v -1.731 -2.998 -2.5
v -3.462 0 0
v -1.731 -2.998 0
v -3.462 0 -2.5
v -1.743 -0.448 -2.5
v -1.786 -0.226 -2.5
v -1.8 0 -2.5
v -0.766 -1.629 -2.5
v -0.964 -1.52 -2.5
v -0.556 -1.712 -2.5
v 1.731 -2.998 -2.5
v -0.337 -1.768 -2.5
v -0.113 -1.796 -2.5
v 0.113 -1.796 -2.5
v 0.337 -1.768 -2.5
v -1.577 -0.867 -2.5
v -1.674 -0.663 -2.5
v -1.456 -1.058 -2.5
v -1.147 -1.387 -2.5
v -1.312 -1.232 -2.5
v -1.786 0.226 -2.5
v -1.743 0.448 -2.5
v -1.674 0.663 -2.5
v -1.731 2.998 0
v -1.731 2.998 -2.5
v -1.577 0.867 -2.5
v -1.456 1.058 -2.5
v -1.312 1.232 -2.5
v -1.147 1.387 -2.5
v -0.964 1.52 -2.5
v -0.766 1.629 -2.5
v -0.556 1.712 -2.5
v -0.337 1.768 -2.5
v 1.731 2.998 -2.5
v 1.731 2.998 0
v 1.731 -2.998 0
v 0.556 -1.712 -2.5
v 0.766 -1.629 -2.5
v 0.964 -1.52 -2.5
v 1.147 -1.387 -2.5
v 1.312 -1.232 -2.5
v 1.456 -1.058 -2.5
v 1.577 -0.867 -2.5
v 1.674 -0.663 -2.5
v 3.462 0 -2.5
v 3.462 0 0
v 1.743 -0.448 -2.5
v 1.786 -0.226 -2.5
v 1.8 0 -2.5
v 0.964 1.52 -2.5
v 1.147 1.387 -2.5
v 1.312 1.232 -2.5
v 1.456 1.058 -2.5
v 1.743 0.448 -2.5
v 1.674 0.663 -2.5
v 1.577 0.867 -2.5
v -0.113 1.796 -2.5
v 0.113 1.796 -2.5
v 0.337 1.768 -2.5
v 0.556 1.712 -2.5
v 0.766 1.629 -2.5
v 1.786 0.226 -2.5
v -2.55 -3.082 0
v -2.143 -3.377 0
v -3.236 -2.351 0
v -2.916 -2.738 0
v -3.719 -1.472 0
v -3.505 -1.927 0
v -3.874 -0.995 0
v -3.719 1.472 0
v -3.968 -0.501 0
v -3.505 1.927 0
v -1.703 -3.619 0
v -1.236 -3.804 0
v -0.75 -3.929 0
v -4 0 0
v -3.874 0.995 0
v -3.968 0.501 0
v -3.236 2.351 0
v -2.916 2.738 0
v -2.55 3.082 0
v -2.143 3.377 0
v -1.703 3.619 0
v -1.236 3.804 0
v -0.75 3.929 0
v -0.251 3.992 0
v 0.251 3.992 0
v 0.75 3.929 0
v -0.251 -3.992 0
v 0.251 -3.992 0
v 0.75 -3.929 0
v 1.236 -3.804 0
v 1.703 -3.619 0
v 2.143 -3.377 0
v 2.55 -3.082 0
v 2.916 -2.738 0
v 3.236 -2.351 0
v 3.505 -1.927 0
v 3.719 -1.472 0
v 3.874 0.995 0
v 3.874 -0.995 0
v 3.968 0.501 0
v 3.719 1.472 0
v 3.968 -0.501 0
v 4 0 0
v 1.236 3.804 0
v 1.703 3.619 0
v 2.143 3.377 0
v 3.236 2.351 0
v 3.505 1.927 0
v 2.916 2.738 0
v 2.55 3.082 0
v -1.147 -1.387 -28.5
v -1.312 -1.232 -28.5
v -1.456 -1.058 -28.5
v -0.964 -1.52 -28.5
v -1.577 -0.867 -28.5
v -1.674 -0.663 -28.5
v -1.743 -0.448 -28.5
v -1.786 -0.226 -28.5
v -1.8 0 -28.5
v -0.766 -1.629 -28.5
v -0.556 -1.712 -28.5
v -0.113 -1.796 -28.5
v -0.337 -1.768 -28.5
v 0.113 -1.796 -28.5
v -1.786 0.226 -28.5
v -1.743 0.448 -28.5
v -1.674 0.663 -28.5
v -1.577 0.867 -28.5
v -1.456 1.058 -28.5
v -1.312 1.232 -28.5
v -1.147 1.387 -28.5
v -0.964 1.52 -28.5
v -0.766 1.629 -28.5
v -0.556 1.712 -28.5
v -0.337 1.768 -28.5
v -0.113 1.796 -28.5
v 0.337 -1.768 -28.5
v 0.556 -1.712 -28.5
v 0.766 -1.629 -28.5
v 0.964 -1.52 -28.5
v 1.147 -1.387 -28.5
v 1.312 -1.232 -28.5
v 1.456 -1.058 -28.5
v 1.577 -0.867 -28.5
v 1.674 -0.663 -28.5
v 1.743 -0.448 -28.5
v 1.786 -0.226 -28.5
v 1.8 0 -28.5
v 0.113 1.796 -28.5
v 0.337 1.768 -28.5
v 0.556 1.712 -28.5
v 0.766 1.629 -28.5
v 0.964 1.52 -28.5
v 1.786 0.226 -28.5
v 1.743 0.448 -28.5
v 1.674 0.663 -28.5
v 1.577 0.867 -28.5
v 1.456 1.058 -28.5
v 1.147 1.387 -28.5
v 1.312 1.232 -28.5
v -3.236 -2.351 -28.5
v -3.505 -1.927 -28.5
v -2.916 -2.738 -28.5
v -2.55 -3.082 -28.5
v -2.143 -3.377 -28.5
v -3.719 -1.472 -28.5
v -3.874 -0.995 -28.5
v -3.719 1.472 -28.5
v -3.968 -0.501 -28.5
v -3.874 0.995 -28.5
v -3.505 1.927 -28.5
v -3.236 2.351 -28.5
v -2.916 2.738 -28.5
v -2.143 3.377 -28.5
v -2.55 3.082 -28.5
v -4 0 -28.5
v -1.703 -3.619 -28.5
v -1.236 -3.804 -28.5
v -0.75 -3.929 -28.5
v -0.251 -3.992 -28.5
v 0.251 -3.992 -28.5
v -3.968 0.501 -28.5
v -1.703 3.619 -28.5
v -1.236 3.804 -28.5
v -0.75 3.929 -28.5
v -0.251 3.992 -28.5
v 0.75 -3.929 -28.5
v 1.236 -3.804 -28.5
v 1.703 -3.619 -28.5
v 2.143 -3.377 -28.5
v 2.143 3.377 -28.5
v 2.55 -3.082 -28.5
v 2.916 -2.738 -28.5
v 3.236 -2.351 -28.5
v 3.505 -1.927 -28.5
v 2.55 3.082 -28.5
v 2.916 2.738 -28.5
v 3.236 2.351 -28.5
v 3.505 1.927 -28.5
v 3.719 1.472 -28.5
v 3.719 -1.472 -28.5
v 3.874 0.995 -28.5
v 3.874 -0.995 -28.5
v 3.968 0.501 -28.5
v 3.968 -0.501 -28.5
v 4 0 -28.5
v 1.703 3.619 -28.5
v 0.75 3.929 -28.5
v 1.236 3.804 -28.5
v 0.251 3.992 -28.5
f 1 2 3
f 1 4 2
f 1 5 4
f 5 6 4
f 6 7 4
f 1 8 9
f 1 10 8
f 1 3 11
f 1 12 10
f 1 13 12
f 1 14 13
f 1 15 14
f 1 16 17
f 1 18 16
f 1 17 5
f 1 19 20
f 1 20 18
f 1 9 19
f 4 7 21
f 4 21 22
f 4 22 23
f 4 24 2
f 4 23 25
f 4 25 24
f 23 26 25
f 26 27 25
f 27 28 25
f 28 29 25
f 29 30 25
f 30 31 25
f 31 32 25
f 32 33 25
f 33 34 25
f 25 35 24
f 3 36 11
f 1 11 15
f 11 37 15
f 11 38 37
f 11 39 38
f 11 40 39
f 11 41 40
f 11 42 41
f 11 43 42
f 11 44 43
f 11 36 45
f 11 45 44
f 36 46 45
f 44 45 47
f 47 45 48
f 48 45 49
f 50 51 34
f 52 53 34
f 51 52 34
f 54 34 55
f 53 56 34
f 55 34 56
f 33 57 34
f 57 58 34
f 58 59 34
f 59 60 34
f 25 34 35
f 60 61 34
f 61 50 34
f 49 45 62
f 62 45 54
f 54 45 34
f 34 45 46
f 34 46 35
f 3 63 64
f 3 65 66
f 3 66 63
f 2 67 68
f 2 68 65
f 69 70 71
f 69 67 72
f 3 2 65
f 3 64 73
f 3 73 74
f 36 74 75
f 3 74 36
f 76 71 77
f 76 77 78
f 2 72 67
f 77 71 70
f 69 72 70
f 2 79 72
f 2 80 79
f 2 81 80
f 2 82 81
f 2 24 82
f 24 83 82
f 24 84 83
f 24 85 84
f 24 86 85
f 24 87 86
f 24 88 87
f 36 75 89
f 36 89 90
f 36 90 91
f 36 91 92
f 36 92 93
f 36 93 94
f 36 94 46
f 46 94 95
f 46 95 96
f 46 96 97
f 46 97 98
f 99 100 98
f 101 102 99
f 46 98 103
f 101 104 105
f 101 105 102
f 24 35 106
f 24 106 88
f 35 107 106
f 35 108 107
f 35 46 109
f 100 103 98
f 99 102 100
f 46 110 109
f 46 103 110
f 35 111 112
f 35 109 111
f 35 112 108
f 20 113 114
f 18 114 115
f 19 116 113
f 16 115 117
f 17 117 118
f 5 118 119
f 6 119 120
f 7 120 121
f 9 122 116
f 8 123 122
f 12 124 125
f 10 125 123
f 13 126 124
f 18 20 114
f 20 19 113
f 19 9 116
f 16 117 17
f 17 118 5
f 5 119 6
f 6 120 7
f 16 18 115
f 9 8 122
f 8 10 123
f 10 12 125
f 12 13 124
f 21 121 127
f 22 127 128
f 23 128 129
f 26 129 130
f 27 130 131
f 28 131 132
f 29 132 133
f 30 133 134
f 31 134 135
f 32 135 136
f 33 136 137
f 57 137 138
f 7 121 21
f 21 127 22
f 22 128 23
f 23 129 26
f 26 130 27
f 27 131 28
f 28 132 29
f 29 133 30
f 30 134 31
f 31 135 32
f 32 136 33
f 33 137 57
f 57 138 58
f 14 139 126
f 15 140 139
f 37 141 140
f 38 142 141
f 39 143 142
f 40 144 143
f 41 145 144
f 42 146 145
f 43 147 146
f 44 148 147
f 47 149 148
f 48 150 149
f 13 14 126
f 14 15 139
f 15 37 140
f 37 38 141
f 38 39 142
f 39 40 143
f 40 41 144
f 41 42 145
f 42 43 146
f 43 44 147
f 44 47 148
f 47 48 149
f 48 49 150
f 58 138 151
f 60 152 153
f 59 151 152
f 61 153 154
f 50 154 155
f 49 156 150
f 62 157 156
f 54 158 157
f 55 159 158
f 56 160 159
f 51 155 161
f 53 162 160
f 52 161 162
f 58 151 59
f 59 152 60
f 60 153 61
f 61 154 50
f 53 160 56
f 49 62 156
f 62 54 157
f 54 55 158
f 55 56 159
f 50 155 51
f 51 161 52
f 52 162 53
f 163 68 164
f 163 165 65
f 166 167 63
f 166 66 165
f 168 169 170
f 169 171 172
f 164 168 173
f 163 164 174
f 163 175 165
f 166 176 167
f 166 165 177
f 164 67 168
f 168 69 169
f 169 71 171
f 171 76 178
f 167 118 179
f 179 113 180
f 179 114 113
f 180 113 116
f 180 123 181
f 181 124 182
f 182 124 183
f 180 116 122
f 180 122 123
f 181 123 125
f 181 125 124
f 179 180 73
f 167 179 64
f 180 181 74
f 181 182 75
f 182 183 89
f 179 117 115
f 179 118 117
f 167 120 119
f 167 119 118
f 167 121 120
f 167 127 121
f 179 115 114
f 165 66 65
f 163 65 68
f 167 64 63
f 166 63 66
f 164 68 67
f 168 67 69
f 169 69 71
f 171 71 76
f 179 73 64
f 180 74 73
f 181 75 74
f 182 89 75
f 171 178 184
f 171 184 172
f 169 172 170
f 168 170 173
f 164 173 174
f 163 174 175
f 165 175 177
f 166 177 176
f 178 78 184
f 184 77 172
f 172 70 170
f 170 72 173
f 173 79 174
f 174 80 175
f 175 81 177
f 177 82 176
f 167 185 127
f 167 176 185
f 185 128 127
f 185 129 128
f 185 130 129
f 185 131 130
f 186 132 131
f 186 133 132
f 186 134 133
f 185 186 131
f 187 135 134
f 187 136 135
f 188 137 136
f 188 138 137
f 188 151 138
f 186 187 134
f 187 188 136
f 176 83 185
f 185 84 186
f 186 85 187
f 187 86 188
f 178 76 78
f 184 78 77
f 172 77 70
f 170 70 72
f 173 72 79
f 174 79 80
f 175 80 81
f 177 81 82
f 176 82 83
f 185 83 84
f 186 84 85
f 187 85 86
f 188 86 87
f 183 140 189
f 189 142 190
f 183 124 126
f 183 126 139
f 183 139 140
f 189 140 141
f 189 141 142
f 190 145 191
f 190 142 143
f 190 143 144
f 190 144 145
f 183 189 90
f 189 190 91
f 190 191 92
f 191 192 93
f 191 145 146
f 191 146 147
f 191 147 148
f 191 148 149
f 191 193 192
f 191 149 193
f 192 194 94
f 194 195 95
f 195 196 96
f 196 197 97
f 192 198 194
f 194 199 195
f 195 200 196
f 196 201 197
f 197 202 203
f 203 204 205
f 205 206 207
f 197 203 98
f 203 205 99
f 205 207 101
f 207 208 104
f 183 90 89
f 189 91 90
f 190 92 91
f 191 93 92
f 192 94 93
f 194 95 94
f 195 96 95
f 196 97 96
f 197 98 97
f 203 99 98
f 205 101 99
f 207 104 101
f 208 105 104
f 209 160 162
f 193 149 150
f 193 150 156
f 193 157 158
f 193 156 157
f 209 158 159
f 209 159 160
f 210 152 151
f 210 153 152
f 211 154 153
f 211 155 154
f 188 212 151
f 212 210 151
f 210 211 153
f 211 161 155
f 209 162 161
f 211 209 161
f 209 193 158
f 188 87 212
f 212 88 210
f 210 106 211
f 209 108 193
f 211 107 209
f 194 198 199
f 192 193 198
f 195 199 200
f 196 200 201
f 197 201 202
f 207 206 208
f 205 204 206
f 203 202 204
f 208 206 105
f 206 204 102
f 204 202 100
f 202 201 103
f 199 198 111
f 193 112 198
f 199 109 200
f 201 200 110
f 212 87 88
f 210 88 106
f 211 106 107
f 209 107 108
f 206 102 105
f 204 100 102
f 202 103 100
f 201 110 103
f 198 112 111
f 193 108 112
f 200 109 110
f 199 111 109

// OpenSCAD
$fn = 50;

difference() {
	union() {
		translate(v = [0, 0, -28.5]) {
			cylinder(h = 31.5, r = 4.0);
		}
	}
	union() {
		translate(v = [0, 0, 0]) {
			rotate(a = [0, 0, 0]) {
				difference() {
					union() {
						translate(v = [0, 0, -2.5]) {
							linear_extrude(height = 2.5) {
								polygon(points = [[3.4619999999999997, 0.0], [1.7310000000000003, 2.9981799479017264], [-1.7309999999999992, 2.9981799479017264], [-3.4619999999999997, 4.2397272186481365e-16], [-1.7310000000000014, -2.998179947901726], [1.7309999999999977, -2.9981799479017277]]);
							}
						}
					}
					union();
				}
			}
		}
		#cylinder(h = 3, r = 5.0);
		#translate(v = [0, 0, -100.0]) {
			cylinder(h = 200, r = 1.8);
		}
	}
}
